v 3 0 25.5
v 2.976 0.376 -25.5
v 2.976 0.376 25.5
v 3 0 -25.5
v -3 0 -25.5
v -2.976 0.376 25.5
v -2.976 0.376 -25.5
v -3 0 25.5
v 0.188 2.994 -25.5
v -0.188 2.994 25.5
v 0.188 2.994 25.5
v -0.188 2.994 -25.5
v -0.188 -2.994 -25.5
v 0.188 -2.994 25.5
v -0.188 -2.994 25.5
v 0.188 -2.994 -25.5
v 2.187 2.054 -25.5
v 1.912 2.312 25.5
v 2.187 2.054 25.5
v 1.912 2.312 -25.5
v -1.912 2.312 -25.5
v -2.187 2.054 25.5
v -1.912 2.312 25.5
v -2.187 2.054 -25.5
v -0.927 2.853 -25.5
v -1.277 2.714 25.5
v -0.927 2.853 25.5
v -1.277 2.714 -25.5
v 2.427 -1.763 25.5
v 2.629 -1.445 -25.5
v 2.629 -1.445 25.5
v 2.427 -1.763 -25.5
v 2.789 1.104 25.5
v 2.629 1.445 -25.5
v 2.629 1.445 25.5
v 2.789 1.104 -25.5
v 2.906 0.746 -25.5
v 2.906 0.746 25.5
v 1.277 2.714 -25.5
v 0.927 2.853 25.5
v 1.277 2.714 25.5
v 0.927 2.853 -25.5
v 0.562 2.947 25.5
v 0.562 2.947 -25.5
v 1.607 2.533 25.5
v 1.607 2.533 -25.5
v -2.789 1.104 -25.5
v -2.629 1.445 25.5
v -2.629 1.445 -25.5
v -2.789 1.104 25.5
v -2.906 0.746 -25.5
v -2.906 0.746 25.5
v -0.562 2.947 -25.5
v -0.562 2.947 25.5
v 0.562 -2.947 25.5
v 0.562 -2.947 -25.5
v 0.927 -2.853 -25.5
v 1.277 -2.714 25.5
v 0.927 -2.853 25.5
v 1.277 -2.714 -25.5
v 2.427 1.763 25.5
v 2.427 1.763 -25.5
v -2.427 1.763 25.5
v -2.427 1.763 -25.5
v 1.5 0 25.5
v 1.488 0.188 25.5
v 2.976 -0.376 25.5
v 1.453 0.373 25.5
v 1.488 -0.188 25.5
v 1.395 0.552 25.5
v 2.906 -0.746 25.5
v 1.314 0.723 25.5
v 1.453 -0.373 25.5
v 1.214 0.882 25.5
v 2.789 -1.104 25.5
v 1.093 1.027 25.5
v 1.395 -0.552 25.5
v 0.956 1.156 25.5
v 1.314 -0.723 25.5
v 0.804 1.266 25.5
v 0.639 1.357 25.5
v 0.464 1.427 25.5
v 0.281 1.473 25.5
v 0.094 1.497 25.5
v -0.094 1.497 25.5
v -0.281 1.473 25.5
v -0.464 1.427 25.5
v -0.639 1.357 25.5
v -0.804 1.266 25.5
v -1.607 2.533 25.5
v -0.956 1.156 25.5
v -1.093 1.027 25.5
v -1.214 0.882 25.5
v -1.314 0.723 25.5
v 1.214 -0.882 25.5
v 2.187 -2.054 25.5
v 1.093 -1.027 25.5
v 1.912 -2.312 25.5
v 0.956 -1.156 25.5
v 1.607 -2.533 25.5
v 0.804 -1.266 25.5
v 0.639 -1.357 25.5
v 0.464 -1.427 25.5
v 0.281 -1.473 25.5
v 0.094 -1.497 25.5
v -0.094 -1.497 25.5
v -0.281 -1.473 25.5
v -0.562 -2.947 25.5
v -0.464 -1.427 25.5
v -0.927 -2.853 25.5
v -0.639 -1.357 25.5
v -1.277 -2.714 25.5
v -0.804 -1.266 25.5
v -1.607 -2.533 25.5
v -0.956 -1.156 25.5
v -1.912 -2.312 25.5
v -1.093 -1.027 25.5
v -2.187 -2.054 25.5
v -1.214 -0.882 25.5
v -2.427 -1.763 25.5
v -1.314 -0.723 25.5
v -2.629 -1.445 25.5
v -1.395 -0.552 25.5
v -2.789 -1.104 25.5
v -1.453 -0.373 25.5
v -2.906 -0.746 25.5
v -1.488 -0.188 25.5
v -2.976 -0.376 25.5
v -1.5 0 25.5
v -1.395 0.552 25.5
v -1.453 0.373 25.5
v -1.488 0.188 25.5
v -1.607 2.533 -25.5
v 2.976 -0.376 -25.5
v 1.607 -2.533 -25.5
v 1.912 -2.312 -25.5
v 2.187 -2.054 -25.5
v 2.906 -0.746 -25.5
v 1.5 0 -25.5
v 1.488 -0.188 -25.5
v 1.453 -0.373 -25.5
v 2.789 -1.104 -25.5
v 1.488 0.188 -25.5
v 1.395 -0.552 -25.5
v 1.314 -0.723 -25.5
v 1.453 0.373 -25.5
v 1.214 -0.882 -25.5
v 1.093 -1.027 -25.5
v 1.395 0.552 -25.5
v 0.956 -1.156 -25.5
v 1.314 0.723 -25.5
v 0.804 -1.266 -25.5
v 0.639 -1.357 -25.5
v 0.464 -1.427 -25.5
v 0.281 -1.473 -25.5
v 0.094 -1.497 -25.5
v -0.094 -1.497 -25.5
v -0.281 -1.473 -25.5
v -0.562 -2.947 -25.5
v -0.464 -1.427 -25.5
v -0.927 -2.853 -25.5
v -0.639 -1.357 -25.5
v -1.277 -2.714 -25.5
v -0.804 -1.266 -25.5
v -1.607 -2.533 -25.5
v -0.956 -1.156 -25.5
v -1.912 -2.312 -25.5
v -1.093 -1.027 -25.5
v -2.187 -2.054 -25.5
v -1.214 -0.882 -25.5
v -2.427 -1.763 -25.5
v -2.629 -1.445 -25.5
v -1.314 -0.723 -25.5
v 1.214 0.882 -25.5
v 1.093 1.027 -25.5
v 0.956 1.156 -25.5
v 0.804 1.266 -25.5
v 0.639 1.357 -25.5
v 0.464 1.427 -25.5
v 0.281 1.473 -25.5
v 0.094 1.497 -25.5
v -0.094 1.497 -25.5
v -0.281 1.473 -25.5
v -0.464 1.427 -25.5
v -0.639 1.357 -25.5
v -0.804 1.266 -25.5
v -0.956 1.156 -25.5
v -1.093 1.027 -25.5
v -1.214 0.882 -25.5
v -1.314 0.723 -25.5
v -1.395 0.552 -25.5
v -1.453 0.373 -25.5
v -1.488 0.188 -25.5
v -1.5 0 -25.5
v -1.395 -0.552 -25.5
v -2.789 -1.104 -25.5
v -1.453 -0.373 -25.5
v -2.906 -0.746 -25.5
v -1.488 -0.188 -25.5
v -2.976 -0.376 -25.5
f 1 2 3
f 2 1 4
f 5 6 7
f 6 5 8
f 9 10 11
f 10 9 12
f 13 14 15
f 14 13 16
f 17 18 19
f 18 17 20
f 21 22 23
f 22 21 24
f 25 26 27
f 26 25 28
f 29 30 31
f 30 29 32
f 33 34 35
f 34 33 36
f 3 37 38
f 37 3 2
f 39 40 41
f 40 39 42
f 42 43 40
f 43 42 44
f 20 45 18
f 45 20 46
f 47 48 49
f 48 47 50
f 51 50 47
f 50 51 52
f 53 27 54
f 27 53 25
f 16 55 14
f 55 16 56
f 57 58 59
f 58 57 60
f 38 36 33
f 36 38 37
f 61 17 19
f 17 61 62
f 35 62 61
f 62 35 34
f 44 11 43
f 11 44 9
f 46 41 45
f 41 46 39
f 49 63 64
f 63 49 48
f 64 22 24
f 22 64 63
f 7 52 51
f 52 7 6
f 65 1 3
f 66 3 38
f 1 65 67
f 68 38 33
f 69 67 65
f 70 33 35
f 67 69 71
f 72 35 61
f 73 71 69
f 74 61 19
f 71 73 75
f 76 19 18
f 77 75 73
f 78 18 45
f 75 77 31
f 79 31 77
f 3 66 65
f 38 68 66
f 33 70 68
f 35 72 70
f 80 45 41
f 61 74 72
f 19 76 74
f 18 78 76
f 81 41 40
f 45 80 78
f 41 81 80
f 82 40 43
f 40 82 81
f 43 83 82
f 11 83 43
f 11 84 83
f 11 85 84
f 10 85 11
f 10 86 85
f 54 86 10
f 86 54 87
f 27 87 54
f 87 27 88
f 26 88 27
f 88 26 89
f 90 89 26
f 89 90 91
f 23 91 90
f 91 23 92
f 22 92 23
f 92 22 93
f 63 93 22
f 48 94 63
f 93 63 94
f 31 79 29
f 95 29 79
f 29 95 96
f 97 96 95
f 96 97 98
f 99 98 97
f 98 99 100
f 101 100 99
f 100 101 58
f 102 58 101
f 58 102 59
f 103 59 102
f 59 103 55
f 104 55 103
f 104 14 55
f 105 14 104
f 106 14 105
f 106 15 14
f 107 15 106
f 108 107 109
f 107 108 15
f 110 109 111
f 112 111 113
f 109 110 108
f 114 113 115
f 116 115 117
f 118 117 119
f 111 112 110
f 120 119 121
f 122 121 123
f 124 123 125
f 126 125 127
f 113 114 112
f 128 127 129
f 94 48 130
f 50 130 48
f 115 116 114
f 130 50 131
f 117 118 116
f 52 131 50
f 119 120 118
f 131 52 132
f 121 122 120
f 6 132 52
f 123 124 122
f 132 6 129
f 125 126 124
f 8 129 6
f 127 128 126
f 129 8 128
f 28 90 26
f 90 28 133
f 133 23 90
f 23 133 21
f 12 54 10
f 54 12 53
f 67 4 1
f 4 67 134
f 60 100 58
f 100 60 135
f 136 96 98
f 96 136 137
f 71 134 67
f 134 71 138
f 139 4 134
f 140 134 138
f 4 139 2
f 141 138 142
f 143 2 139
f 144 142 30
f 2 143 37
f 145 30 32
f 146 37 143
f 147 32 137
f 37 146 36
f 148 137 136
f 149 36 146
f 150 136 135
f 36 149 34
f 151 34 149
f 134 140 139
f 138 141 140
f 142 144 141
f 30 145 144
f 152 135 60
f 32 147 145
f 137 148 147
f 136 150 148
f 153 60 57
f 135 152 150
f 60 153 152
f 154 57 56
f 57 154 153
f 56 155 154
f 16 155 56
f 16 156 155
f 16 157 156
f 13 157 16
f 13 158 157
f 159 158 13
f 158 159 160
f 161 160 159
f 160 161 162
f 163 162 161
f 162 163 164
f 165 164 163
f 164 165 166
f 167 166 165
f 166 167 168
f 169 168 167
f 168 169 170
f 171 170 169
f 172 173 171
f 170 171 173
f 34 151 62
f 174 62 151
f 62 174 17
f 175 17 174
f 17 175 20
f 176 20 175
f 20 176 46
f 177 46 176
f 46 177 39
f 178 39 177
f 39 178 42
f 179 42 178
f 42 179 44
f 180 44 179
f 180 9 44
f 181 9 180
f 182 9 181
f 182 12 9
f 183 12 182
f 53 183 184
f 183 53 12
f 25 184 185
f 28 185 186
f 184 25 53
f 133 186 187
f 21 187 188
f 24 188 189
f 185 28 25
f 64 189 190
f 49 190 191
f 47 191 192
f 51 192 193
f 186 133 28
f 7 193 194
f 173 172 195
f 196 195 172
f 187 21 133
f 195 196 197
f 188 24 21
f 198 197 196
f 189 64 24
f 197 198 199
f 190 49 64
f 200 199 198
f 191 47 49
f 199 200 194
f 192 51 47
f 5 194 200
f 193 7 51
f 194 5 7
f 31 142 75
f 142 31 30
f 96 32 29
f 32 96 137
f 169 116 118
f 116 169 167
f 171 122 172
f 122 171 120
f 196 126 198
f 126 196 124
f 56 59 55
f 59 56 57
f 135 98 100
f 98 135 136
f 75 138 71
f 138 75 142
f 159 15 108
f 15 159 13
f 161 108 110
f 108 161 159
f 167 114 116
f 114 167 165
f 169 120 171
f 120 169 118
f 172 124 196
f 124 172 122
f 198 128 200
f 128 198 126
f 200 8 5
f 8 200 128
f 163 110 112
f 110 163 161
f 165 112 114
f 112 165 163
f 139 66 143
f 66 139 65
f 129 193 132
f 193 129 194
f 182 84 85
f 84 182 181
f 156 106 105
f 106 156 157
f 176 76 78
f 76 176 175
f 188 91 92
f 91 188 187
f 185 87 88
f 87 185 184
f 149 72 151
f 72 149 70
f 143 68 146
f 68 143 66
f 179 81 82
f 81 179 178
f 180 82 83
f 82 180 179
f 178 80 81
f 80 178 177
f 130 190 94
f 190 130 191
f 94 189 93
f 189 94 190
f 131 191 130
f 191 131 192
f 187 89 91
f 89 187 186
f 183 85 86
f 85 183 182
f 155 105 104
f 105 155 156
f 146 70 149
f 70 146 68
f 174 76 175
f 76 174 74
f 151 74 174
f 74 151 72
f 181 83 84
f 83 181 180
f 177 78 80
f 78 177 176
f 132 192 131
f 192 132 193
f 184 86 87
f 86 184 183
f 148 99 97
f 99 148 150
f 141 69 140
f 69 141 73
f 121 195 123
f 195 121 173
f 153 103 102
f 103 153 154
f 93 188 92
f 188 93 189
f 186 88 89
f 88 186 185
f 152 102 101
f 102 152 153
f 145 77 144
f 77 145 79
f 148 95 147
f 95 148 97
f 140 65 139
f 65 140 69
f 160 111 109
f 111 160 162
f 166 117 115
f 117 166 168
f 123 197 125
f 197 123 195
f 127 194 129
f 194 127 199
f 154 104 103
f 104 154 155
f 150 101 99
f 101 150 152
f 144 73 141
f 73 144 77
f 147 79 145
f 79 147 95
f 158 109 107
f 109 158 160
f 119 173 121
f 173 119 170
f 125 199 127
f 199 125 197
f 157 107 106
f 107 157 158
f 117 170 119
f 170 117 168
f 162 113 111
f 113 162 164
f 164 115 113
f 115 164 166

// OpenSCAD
$fn = 50;


difference() {
	union() {
		translate(v = [0, 0, -25.5000000000]) {
			cylinder(h = 51, r = 3.0000000000);
		}
	}
	union() {
		translate(v = [0, 0, -100.0000000000]) {
			cylinder(h = 200, r = 1.5000000000);
		}
	}
}
